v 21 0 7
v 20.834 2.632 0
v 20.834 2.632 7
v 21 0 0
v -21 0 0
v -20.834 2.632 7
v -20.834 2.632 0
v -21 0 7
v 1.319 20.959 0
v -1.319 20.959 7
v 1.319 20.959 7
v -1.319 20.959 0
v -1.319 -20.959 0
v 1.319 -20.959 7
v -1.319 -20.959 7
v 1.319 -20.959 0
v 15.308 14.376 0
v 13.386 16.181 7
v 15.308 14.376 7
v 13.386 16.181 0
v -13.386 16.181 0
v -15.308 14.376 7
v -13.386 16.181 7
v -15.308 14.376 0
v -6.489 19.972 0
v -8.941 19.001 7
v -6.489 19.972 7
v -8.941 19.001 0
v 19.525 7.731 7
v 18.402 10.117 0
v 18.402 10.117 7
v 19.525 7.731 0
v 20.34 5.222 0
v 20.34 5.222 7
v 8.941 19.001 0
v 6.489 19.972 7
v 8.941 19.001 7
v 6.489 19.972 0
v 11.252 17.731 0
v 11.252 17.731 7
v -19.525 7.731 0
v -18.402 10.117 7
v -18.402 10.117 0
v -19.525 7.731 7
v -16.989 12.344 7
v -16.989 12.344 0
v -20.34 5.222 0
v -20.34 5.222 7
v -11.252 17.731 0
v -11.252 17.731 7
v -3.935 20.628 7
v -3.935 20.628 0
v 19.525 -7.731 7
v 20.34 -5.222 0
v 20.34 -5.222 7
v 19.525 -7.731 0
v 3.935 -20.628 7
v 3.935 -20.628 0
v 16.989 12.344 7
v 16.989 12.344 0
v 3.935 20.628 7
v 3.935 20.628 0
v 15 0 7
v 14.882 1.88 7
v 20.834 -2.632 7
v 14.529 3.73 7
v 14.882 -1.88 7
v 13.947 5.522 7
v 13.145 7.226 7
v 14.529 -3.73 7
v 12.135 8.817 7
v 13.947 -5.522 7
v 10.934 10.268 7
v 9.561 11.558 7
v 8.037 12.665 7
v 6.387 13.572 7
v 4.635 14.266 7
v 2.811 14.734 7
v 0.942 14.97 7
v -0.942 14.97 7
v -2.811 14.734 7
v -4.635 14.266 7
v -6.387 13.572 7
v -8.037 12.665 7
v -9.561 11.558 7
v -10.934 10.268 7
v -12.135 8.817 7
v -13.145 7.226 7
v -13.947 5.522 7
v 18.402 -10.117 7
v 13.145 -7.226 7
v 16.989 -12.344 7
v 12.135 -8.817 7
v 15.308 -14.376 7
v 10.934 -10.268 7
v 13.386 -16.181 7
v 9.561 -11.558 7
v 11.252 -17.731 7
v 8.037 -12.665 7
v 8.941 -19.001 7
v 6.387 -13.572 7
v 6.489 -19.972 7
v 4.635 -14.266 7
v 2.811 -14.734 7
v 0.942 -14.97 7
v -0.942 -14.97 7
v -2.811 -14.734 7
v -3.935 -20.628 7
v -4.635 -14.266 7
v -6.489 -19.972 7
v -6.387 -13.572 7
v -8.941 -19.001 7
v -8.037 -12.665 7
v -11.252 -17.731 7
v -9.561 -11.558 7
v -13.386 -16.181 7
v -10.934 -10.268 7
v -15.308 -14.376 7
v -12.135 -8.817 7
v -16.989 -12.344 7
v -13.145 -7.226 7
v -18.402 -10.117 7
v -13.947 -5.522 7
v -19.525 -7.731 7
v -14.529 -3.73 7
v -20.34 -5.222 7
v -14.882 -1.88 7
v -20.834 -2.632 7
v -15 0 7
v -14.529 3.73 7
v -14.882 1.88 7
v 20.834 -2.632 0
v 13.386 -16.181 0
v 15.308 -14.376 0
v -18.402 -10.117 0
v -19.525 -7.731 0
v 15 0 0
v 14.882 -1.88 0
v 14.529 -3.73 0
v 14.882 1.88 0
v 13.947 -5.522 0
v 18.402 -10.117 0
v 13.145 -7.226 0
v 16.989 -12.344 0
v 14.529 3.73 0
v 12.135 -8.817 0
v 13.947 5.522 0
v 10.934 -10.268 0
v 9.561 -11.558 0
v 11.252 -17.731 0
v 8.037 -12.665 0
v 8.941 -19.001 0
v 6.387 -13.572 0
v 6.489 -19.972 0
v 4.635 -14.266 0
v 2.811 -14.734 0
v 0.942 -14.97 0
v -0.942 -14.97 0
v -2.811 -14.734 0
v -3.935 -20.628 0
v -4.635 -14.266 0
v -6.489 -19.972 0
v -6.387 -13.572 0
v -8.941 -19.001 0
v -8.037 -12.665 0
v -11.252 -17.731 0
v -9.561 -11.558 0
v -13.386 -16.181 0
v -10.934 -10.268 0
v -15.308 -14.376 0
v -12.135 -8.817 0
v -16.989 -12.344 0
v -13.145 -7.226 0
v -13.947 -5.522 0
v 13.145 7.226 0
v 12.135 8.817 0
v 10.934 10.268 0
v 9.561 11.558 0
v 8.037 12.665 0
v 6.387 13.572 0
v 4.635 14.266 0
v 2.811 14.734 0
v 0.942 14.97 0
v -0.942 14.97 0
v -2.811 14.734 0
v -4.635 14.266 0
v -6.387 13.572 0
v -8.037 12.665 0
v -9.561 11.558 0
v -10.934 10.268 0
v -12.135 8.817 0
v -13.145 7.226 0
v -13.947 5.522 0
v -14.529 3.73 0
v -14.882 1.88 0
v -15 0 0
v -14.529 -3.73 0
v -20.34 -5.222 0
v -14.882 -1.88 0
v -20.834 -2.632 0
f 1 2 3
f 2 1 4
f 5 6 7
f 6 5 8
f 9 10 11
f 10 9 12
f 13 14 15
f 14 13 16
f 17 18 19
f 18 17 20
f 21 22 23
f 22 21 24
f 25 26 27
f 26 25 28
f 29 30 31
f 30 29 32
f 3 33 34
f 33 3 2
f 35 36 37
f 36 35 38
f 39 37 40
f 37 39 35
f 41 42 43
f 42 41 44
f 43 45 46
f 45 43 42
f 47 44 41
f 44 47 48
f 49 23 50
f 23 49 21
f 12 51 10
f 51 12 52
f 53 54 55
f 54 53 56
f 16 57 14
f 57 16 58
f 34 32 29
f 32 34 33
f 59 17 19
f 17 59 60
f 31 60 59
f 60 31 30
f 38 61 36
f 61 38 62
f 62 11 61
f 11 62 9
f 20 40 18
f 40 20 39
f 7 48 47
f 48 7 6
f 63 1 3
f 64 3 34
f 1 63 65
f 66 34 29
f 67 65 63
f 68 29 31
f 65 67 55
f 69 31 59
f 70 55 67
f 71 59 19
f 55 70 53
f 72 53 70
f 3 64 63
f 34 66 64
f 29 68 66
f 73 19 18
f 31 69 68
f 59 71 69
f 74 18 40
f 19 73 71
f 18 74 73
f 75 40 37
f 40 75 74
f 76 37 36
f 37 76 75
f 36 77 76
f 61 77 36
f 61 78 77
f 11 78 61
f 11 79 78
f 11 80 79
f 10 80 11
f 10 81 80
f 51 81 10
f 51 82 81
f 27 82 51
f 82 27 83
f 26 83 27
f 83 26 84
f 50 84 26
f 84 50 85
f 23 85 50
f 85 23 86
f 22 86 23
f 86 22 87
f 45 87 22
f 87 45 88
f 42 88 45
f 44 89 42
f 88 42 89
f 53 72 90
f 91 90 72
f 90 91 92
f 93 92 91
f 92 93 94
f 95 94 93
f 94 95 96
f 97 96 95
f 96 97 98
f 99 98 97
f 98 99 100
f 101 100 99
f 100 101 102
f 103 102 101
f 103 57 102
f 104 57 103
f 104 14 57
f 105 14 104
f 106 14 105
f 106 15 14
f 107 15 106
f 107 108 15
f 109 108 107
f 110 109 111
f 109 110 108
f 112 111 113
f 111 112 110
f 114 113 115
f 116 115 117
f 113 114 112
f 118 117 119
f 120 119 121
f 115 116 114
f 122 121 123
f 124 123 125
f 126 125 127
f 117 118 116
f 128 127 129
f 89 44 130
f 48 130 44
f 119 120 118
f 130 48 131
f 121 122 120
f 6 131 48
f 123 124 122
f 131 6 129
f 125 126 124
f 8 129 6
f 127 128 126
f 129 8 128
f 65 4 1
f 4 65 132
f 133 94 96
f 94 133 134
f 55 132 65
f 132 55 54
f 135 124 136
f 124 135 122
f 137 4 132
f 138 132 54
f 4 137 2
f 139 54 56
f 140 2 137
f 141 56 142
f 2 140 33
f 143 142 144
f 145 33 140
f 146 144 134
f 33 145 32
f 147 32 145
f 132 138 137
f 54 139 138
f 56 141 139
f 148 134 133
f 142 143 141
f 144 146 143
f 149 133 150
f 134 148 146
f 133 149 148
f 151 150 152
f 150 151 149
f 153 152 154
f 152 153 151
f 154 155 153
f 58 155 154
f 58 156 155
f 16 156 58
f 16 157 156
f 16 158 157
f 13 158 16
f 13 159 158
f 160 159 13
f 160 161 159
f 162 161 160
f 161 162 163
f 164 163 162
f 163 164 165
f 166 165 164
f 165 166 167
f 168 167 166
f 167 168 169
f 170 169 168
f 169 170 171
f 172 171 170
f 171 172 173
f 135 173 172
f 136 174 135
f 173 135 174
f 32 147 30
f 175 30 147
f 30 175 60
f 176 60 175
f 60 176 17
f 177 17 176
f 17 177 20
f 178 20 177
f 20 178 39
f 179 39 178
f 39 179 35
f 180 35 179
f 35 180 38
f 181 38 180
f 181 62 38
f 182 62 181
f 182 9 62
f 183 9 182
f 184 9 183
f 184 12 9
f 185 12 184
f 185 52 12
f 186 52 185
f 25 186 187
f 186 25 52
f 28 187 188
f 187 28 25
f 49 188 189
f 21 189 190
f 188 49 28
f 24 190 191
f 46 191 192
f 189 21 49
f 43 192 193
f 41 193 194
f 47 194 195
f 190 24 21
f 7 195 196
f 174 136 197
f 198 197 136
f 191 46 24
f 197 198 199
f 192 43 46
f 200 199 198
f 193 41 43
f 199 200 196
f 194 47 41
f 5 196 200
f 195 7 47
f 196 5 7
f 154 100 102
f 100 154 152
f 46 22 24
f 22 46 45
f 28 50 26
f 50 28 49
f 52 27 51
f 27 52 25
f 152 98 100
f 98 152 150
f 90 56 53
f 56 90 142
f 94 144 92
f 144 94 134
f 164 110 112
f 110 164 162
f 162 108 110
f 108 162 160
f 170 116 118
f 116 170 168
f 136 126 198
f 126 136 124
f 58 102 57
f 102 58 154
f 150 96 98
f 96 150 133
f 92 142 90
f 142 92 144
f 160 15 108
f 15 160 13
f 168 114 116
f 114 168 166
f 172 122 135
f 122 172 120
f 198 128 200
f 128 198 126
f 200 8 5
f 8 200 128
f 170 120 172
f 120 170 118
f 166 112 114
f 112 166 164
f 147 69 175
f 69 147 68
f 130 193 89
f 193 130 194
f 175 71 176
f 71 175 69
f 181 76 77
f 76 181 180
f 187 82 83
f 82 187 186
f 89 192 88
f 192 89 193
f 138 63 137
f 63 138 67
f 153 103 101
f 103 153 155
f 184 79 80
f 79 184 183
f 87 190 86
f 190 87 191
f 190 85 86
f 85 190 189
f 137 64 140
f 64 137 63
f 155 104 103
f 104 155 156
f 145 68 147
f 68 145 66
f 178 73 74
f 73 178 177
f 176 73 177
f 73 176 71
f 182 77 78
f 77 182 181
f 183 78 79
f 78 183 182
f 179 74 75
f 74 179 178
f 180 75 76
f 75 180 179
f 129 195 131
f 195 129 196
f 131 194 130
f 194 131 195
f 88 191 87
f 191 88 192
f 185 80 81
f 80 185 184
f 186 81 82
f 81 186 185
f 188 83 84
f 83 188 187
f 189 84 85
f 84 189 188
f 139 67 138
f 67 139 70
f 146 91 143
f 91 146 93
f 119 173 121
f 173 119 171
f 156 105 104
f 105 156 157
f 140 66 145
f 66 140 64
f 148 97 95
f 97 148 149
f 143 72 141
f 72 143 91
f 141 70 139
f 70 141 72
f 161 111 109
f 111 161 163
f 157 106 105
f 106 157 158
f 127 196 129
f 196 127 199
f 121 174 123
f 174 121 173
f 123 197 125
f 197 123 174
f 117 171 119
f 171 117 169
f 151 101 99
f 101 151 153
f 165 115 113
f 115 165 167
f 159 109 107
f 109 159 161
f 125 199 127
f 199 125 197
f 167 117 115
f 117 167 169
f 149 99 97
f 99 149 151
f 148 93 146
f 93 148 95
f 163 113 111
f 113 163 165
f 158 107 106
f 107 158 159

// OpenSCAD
$fn = 50;


difference() {
	union() {
		cylinder(h = 7, r = 21.0000000000);
	}
	union() {
		cylinder(h = 7, r = 15.0000000000);
	}
}
